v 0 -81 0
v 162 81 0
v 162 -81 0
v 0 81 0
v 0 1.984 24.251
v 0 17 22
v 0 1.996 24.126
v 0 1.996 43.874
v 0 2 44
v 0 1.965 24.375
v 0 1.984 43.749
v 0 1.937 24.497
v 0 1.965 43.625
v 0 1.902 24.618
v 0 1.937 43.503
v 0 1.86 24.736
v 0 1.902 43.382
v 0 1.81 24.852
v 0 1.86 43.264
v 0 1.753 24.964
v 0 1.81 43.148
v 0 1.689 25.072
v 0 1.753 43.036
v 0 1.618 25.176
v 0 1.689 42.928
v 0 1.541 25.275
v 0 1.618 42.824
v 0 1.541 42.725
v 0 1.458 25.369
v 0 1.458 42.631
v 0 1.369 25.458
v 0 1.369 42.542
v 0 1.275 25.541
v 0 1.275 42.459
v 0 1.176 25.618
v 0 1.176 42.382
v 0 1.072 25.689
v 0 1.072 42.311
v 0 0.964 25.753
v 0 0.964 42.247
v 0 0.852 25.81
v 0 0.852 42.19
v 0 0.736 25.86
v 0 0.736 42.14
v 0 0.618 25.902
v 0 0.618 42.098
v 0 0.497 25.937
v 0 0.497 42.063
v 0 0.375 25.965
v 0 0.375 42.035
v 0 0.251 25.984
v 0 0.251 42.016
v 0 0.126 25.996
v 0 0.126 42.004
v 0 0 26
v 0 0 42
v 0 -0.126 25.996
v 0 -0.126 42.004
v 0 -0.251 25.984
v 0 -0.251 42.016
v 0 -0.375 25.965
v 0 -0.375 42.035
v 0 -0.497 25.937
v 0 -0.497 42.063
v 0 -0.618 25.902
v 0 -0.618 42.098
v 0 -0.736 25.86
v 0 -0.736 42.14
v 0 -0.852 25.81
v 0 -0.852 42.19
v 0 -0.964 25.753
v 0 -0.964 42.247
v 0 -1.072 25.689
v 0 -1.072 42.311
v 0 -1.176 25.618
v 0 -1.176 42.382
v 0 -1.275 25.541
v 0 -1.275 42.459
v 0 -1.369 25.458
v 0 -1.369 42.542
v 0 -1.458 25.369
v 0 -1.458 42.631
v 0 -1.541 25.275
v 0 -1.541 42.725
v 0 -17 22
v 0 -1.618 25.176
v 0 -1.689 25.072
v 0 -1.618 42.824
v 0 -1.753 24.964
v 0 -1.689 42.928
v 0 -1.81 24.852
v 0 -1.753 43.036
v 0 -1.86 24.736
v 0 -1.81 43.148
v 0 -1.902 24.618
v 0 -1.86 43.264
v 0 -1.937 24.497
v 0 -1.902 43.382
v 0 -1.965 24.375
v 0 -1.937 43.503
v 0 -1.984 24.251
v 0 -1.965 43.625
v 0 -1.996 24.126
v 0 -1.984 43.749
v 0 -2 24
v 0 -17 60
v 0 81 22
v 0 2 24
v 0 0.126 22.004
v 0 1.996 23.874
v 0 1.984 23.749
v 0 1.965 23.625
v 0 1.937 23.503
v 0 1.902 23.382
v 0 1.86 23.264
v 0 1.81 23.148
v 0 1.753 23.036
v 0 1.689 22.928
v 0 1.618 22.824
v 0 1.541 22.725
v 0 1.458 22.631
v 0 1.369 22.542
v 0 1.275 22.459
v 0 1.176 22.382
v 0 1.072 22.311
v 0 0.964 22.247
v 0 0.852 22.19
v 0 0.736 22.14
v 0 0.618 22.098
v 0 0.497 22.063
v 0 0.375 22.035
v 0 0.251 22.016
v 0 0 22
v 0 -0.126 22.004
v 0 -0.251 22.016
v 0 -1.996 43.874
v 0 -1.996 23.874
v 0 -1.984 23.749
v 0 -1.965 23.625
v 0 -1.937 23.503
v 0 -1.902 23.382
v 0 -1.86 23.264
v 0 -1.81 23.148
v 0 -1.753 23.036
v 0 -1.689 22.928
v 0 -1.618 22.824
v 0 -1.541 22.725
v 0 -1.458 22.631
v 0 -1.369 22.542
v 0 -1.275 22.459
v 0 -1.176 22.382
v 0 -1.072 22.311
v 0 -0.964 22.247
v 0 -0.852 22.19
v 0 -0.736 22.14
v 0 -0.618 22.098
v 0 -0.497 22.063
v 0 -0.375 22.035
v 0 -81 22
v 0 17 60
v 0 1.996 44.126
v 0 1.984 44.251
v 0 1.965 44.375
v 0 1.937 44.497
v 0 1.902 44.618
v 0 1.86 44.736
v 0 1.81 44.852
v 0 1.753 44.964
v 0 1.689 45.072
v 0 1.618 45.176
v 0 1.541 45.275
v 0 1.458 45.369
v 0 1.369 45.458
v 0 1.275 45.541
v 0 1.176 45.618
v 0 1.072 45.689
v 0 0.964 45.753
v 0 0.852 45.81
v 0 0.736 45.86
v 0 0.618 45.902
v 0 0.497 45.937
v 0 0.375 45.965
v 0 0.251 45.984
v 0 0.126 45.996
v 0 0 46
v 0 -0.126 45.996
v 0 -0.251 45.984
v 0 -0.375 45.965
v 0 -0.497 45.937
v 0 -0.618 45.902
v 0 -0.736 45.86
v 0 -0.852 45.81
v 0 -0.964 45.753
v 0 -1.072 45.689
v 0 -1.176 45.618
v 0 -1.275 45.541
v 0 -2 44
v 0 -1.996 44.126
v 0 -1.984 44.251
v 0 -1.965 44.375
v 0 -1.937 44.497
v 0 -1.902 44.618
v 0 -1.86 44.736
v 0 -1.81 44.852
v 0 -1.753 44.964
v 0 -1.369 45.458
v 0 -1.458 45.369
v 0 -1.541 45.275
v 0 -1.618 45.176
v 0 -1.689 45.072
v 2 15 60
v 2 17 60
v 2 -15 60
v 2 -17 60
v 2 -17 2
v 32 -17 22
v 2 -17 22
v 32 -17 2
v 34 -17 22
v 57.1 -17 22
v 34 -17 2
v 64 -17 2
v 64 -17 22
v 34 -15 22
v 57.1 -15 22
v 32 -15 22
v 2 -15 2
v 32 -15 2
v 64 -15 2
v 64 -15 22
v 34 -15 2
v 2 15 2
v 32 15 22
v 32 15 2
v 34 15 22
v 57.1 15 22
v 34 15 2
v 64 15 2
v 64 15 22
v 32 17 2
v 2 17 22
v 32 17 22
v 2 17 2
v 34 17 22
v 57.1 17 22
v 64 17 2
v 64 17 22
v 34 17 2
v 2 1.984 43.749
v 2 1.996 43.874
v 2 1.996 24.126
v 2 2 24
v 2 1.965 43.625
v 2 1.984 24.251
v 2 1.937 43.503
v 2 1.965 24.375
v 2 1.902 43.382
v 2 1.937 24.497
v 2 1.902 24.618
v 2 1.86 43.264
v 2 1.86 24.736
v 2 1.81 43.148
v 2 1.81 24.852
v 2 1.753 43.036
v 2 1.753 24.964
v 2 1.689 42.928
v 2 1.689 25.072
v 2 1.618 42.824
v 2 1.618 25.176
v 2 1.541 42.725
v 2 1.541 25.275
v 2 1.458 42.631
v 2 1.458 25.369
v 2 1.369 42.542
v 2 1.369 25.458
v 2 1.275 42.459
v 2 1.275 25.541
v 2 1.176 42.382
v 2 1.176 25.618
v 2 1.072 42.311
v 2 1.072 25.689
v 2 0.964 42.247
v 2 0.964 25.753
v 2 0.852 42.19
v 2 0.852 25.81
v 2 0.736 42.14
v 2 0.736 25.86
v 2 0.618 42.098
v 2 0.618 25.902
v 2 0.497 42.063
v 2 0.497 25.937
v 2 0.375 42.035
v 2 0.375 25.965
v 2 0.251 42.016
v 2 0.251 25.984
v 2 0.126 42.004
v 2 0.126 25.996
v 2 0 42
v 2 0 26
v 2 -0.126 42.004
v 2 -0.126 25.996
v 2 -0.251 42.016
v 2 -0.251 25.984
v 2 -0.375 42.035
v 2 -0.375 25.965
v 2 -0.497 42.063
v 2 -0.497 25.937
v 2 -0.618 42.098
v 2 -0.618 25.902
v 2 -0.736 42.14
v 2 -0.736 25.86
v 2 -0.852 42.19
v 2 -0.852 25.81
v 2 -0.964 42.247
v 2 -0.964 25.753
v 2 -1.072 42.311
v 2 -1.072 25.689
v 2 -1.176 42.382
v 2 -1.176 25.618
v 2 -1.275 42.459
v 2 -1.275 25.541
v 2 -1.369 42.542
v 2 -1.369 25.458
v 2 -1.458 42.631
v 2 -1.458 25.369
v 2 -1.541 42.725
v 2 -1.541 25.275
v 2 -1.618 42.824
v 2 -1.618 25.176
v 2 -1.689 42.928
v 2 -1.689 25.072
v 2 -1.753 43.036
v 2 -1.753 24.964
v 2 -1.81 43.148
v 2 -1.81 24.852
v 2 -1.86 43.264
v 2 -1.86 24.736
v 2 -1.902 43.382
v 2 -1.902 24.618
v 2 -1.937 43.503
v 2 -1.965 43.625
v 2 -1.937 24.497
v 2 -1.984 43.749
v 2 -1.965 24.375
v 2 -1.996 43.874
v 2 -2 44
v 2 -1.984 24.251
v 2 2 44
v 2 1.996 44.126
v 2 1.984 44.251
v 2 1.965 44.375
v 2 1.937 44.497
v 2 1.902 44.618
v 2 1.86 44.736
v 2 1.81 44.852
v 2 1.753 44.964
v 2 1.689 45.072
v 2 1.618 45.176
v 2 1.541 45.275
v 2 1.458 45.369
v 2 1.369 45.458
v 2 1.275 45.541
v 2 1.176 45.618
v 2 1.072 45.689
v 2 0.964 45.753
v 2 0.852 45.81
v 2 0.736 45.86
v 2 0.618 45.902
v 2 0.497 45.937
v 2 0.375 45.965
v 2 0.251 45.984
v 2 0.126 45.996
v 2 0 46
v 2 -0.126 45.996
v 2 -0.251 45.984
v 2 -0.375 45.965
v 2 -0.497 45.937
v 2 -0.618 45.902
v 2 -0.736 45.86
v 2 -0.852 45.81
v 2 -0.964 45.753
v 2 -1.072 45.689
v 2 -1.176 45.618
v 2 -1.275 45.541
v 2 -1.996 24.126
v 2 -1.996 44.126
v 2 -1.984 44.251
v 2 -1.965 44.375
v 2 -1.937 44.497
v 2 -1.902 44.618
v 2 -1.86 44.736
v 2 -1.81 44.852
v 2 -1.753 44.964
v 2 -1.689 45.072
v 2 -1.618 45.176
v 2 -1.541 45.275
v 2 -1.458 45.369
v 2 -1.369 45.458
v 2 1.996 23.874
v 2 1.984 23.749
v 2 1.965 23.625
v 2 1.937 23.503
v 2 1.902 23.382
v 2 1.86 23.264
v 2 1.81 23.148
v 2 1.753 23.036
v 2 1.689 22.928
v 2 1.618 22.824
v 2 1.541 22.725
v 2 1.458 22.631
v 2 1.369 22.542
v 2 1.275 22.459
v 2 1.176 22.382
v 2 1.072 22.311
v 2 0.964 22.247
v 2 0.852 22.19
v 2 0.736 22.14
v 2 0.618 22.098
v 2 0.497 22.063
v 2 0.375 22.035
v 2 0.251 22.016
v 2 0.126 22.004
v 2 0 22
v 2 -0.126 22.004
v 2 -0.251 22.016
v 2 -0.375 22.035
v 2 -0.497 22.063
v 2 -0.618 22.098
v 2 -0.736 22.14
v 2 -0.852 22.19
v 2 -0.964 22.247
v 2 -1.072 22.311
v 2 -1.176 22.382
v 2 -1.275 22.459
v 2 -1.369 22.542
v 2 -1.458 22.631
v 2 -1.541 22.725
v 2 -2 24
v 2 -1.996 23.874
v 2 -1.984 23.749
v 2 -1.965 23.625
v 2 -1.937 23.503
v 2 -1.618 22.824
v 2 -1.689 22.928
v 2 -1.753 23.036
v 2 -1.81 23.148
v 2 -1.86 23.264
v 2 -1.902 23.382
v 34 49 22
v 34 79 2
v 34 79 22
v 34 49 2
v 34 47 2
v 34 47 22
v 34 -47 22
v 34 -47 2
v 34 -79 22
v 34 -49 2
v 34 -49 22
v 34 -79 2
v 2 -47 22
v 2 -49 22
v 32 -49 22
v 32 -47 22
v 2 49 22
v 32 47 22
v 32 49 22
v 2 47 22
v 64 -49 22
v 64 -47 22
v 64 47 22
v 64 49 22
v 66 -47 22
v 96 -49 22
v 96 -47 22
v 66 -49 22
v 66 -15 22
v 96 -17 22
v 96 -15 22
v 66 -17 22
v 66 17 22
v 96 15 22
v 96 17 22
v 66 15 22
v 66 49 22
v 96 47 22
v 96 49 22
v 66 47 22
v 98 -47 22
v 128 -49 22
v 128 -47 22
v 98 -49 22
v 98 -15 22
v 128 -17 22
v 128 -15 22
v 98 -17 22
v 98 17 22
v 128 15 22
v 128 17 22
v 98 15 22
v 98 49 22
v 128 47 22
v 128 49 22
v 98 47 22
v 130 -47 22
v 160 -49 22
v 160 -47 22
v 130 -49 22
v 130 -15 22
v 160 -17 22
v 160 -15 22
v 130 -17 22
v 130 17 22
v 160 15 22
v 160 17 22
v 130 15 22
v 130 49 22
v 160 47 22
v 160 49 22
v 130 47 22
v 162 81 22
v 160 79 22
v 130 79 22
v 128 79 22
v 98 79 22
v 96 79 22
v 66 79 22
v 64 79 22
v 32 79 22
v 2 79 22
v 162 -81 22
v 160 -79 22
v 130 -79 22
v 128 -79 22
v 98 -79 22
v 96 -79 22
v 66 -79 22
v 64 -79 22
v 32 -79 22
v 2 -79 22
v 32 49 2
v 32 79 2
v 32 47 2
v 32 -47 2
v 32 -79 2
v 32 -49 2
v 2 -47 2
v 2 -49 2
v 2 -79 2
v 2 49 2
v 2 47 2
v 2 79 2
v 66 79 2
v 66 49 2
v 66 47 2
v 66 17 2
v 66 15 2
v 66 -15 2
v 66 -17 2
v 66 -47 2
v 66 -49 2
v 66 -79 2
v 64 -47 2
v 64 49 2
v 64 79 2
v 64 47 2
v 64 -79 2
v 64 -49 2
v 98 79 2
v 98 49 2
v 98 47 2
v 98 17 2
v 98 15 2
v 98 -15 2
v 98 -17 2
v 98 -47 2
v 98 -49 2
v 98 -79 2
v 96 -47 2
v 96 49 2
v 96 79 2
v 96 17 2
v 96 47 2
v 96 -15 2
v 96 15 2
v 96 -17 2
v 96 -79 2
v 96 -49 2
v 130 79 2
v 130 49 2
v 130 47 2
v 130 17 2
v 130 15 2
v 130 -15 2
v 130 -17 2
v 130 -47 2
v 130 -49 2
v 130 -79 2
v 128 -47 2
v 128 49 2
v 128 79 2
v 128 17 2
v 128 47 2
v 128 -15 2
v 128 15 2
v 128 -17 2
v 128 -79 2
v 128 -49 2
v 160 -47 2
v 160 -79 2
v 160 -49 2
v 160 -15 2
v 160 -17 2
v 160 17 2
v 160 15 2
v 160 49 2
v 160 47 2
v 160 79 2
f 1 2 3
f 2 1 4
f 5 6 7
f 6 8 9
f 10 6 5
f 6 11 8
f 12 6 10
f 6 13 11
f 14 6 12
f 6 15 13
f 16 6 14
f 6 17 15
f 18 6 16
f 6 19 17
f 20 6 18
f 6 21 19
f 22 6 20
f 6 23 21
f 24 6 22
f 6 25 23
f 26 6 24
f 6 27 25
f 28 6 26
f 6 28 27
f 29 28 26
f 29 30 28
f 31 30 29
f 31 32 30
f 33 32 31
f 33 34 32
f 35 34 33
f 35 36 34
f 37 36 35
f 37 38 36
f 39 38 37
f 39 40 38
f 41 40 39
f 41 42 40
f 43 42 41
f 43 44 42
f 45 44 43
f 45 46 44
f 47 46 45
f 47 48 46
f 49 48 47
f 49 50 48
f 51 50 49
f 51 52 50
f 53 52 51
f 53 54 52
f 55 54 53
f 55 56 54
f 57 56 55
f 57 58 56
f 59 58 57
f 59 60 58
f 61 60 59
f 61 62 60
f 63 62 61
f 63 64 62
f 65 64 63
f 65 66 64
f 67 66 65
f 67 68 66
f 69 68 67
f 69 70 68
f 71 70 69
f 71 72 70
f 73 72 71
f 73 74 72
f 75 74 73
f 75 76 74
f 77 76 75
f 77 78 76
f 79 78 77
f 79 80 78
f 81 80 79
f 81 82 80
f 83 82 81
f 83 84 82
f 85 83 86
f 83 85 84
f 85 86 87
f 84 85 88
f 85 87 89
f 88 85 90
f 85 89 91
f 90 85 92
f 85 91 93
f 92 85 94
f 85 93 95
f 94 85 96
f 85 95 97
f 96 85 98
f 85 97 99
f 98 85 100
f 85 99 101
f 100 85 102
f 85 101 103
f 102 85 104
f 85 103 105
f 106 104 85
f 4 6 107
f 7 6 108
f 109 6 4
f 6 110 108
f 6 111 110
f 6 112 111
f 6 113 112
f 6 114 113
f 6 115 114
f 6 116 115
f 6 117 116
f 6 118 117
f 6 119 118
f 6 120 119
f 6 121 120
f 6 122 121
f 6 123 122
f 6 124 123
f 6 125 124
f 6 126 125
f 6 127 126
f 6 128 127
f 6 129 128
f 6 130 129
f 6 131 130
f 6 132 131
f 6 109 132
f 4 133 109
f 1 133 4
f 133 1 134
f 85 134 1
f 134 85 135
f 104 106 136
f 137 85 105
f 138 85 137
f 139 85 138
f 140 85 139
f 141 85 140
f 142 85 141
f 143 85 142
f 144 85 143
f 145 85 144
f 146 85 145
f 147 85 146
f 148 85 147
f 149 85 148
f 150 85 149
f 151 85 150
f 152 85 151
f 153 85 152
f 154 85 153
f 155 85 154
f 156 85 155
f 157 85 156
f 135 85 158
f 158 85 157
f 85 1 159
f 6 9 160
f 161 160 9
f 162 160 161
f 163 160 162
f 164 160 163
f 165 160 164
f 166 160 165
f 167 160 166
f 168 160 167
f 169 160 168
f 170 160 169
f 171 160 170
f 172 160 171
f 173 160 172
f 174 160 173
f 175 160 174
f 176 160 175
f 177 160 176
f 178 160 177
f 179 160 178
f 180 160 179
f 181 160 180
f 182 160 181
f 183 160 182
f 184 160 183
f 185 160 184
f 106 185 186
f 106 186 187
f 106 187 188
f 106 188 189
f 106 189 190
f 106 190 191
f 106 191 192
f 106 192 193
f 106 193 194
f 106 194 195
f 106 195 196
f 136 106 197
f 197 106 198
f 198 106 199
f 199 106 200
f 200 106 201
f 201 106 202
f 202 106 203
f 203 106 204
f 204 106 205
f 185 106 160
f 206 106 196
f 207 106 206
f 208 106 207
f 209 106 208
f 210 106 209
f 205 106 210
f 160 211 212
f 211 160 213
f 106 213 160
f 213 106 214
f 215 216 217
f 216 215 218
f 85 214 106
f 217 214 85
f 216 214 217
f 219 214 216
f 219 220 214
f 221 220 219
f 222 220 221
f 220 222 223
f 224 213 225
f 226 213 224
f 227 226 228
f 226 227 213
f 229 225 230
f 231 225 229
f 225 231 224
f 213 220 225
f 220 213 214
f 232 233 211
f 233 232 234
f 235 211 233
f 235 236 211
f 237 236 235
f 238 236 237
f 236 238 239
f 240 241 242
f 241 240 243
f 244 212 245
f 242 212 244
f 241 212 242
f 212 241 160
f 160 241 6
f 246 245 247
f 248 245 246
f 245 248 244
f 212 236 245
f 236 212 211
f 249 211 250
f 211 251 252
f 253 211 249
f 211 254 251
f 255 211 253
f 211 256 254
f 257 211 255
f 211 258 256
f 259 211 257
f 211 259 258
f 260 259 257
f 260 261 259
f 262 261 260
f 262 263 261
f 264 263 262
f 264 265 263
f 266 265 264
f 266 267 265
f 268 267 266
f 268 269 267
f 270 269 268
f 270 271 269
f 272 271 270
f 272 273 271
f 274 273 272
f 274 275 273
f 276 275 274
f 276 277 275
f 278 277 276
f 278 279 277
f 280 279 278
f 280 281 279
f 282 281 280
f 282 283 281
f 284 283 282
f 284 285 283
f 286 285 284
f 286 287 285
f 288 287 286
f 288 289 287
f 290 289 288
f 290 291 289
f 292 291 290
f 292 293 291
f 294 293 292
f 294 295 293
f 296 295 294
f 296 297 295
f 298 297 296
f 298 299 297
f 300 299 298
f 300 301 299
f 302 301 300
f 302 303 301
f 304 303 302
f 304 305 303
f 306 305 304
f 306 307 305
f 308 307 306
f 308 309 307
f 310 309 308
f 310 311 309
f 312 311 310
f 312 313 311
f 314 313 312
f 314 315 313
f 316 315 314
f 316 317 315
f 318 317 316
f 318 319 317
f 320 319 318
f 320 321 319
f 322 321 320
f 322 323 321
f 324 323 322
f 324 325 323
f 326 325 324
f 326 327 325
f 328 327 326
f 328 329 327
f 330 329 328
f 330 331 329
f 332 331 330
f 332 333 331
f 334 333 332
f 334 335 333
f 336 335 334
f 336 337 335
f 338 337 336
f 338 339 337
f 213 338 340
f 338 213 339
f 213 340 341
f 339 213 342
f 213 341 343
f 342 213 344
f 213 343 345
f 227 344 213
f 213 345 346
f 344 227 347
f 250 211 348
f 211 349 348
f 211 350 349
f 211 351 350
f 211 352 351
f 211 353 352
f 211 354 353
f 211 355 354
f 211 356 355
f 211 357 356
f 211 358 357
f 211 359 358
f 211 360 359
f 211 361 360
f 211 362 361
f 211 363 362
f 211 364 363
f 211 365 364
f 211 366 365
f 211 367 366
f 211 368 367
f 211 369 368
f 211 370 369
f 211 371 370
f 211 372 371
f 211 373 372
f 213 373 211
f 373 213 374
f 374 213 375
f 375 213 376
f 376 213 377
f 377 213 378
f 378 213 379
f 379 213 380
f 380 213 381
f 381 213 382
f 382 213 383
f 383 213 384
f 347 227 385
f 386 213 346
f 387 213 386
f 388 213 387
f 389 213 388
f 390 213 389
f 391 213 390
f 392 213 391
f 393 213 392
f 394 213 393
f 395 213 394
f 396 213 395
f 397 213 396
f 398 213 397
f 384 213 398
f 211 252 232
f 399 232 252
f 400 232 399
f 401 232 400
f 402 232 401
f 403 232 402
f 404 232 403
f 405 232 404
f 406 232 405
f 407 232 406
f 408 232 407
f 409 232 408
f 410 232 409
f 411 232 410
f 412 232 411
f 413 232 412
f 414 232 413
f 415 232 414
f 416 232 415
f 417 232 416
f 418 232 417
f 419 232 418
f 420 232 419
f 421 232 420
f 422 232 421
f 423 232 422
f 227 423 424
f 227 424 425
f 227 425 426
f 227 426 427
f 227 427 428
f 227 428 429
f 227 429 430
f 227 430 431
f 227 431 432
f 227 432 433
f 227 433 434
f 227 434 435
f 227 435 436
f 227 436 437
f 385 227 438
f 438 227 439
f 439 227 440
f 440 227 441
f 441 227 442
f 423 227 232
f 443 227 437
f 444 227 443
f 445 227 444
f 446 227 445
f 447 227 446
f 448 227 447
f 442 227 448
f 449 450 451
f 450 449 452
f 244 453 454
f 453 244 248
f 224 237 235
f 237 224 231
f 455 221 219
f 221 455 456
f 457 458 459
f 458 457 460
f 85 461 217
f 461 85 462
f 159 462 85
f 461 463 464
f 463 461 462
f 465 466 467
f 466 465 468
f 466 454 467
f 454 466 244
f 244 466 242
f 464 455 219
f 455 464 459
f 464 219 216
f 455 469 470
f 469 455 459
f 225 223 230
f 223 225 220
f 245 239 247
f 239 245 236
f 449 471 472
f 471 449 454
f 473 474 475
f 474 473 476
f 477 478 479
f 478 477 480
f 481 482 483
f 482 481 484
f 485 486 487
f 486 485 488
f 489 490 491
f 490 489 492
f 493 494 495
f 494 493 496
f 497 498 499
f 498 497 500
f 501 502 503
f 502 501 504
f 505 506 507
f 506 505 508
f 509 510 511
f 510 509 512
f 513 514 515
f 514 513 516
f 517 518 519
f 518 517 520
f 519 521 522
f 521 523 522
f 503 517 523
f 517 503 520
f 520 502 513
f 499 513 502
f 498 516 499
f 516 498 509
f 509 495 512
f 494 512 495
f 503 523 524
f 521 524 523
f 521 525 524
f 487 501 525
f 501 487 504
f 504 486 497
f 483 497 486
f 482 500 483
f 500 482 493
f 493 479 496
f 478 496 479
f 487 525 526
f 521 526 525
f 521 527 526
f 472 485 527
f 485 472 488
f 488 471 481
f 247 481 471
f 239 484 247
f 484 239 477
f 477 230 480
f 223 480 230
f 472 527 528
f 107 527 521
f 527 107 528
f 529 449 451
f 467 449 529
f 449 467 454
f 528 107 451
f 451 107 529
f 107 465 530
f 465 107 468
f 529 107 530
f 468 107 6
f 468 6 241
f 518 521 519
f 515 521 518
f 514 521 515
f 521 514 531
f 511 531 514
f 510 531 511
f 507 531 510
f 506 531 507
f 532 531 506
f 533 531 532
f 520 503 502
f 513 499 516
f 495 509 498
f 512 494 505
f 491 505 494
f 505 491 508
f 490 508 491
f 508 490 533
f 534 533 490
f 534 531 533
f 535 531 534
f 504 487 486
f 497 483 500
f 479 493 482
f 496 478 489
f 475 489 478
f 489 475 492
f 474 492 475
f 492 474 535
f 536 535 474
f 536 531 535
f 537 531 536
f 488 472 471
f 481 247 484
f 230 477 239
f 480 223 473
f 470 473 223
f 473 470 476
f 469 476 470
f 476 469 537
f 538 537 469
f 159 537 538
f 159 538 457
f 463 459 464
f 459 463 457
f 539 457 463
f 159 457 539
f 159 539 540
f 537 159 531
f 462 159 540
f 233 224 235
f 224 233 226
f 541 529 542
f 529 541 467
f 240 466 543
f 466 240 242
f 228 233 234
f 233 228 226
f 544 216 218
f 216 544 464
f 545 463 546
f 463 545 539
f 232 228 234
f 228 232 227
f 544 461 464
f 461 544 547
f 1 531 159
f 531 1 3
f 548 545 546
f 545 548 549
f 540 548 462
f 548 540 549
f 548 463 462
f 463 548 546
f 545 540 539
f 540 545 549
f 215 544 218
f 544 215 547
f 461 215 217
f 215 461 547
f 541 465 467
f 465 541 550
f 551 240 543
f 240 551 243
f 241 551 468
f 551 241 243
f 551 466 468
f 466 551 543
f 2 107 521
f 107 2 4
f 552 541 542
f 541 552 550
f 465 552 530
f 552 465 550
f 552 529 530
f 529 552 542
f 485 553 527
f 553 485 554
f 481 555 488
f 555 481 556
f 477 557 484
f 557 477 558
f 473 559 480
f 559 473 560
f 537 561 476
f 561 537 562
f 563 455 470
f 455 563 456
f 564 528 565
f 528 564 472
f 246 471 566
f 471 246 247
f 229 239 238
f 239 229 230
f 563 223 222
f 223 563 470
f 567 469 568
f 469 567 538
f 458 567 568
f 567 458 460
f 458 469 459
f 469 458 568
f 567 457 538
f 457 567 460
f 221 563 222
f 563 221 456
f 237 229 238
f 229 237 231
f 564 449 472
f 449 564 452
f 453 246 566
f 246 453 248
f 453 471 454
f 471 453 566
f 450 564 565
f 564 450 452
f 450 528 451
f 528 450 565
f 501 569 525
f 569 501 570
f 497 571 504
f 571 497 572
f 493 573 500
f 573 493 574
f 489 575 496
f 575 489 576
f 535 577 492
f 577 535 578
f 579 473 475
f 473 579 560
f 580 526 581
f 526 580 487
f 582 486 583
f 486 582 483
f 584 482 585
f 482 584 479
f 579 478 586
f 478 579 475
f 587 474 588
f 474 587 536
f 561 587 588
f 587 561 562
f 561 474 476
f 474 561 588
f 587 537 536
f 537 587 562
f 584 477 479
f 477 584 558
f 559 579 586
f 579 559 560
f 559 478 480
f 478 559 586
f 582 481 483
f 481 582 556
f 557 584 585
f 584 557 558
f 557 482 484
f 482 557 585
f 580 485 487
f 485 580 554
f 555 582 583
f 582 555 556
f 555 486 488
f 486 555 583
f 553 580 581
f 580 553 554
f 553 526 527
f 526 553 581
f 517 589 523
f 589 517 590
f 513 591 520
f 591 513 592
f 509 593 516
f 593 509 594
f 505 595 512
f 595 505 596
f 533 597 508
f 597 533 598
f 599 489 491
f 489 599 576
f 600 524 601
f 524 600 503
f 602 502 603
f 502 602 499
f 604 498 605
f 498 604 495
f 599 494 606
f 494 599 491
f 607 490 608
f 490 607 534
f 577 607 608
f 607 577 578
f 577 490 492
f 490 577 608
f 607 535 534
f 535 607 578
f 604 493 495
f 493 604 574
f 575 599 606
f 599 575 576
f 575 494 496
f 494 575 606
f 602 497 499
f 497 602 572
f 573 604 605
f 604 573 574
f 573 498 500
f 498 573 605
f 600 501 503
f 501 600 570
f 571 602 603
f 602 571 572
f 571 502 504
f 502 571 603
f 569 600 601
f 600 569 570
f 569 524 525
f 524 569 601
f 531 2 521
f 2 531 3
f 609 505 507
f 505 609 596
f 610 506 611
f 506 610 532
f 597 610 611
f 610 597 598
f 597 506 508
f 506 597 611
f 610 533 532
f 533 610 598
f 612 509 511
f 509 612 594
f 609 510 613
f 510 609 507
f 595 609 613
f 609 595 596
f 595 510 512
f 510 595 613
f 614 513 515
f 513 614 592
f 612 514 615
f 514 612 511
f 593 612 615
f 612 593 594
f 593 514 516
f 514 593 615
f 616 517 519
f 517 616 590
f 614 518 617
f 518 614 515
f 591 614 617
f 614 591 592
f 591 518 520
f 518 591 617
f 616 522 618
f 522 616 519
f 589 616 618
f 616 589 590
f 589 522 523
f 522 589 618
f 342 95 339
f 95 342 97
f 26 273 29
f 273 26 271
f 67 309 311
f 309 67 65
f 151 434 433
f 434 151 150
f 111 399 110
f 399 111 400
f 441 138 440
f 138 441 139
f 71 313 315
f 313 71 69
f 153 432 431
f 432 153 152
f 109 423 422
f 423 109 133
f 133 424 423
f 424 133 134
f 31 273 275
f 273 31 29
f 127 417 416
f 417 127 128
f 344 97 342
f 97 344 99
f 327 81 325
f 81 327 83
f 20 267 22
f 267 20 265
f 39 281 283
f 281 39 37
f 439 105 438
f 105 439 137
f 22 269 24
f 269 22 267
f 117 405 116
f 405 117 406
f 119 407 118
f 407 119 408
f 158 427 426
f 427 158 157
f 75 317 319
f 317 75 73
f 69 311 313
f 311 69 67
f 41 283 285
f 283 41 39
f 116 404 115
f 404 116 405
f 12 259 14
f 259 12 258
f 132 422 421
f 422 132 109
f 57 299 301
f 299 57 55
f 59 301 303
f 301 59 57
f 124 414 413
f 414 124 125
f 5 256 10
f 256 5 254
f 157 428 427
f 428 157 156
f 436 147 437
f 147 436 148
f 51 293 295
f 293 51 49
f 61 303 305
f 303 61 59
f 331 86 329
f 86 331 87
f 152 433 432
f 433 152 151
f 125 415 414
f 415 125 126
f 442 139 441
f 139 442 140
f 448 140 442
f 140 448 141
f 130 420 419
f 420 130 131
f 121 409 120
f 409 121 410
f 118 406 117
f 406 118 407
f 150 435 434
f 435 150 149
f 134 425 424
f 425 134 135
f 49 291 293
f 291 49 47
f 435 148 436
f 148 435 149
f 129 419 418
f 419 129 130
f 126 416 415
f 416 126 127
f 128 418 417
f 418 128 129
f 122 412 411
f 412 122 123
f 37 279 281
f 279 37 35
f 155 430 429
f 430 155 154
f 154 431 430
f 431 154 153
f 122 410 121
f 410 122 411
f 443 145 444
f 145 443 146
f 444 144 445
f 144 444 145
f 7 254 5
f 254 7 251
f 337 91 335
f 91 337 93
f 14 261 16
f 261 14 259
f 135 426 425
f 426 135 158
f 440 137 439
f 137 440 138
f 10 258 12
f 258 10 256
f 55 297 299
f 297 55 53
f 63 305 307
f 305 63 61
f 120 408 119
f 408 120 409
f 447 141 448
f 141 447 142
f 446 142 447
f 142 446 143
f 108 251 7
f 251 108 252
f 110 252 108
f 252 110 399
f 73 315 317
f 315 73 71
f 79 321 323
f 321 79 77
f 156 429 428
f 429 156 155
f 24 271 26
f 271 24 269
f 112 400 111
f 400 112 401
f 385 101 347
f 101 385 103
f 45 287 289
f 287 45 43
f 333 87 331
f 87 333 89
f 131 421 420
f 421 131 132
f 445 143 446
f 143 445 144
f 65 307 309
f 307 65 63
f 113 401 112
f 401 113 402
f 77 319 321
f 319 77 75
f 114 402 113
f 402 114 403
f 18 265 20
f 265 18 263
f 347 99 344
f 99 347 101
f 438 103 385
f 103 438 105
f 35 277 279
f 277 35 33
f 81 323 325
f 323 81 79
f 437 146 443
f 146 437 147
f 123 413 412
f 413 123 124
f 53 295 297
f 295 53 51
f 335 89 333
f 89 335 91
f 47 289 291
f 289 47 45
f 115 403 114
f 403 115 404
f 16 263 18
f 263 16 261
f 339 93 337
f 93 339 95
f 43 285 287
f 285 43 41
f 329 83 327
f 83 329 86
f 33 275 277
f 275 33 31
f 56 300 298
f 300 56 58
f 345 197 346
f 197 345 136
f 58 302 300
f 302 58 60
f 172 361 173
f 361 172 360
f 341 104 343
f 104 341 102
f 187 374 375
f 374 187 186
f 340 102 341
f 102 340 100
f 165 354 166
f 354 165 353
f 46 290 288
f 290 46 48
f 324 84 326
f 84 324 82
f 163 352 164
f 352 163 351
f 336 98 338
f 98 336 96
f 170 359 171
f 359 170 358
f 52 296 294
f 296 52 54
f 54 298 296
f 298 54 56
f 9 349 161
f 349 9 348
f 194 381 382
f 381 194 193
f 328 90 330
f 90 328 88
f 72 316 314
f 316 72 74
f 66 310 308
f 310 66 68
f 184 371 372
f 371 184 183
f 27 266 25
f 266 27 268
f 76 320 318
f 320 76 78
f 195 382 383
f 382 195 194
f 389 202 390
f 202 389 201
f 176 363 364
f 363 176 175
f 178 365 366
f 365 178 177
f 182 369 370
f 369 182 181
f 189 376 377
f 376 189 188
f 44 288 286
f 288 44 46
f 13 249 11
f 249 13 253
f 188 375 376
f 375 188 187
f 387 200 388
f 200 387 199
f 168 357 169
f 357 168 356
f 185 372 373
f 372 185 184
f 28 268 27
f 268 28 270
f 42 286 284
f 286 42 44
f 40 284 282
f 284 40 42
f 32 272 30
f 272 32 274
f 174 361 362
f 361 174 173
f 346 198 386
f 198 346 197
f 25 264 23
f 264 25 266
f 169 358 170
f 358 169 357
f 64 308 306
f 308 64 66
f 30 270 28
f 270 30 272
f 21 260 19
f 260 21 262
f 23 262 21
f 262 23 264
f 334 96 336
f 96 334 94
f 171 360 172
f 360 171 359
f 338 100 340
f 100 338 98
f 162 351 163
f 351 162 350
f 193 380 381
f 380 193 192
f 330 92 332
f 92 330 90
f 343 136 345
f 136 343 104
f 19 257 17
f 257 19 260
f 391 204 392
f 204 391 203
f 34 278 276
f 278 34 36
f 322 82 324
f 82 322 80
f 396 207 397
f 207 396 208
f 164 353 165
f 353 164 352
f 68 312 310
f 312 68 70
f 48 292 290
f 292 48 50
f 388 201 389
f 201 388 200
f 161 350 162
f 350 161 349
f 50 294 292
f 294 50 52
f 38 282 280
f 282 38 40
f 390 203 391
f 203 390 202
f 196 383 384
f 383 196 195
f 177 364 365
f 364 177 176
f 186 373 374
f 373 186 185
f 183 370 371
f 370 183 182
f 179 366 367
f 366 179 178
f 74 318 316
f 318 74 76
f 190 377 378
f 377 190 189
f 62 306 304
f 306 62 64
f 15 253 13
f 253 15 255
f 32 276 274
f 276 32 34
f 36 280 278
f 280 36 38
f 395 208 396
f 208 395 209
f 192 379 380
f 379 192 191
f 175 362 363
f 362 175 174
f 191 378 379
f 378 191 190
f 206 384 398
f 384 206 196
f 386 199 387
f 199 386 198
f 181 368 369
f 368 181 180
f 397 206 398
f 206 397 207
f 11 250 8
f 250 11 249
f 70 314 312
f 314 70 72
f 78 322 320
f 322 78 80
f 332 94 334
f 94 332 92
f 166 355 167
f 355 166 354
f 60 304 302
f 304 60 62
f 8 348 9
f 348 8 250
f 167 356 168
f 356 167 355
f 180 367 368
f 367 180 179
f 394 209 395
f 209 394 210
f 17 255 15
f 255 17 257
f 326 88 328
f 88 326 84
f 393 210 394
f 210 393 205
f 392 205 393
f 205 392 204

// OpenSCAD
sections_width = 5;
sections_depth = 5;
swidth = 30;
sdepth = 30;
sheight = 20;
wallthickness = 2;
box_width = swidth + 2 * wallthickness;
box_depth = sdepth + 2 * wallthickness;
box_height = sheight + wallthickness;
$fn = 100;

module holding_structure(width, depth, height, baseheight) {
	traegerpolygon = [[0,0], [depth,0], [depth, baseheight], [wallthickness, height], [0, height]];
	backplane_width = swidth + 2 * wallthickness;
	difference() {
	union() {
	translate([0, -swidth/2 , 0])rotate([90, 0, 0])linear_extrude(wallthickness)polygon(traegerpolygon);
	translate([0, swidth/2 + wallthickness, 0])rotate([90, 0, 0])linear_extrude(wallthickness)polygon(traegerpolygon);
	translate([0, -backplane_width/2, 0])cube([wallthickness, backplane_width, height]);
	}
	translate([0, 0, 1.2*sheight])rotate([0, 90, 0])cylinder(r=2, h=2);
	translate([0, 0, 2.2*sheight])rotate([0, 90, 0])cylinder(r=2, h=2);
	}
}

module box_top_open(outside_width, outside_depth, outside_height, wallthickness) {
	difference() {
	cube([outside_width, outside_depth, outside_height]);
	translate([wallthickness, wallthickness, wallthickness])cube([outside_width - 2 * wallthickness, outside_depth - 2 * wallthickness, outside_height-wallthickness]);
	}
}
union() {
holding_structure(swidth, 2 * sdepth, 3 * sheight, sheight);
for ( i = [0:sections_width-1] ) {
	for ( j = [0:sections_depth-1] ) {
		translate([(i)*(box_width-wallthickness), (j-2)*(box_depth-wallthickness), 0])
			translate([0, -box_width/2, 0])box_top_open(box_width, box_depth, box_height, 2);
	}
}
}
